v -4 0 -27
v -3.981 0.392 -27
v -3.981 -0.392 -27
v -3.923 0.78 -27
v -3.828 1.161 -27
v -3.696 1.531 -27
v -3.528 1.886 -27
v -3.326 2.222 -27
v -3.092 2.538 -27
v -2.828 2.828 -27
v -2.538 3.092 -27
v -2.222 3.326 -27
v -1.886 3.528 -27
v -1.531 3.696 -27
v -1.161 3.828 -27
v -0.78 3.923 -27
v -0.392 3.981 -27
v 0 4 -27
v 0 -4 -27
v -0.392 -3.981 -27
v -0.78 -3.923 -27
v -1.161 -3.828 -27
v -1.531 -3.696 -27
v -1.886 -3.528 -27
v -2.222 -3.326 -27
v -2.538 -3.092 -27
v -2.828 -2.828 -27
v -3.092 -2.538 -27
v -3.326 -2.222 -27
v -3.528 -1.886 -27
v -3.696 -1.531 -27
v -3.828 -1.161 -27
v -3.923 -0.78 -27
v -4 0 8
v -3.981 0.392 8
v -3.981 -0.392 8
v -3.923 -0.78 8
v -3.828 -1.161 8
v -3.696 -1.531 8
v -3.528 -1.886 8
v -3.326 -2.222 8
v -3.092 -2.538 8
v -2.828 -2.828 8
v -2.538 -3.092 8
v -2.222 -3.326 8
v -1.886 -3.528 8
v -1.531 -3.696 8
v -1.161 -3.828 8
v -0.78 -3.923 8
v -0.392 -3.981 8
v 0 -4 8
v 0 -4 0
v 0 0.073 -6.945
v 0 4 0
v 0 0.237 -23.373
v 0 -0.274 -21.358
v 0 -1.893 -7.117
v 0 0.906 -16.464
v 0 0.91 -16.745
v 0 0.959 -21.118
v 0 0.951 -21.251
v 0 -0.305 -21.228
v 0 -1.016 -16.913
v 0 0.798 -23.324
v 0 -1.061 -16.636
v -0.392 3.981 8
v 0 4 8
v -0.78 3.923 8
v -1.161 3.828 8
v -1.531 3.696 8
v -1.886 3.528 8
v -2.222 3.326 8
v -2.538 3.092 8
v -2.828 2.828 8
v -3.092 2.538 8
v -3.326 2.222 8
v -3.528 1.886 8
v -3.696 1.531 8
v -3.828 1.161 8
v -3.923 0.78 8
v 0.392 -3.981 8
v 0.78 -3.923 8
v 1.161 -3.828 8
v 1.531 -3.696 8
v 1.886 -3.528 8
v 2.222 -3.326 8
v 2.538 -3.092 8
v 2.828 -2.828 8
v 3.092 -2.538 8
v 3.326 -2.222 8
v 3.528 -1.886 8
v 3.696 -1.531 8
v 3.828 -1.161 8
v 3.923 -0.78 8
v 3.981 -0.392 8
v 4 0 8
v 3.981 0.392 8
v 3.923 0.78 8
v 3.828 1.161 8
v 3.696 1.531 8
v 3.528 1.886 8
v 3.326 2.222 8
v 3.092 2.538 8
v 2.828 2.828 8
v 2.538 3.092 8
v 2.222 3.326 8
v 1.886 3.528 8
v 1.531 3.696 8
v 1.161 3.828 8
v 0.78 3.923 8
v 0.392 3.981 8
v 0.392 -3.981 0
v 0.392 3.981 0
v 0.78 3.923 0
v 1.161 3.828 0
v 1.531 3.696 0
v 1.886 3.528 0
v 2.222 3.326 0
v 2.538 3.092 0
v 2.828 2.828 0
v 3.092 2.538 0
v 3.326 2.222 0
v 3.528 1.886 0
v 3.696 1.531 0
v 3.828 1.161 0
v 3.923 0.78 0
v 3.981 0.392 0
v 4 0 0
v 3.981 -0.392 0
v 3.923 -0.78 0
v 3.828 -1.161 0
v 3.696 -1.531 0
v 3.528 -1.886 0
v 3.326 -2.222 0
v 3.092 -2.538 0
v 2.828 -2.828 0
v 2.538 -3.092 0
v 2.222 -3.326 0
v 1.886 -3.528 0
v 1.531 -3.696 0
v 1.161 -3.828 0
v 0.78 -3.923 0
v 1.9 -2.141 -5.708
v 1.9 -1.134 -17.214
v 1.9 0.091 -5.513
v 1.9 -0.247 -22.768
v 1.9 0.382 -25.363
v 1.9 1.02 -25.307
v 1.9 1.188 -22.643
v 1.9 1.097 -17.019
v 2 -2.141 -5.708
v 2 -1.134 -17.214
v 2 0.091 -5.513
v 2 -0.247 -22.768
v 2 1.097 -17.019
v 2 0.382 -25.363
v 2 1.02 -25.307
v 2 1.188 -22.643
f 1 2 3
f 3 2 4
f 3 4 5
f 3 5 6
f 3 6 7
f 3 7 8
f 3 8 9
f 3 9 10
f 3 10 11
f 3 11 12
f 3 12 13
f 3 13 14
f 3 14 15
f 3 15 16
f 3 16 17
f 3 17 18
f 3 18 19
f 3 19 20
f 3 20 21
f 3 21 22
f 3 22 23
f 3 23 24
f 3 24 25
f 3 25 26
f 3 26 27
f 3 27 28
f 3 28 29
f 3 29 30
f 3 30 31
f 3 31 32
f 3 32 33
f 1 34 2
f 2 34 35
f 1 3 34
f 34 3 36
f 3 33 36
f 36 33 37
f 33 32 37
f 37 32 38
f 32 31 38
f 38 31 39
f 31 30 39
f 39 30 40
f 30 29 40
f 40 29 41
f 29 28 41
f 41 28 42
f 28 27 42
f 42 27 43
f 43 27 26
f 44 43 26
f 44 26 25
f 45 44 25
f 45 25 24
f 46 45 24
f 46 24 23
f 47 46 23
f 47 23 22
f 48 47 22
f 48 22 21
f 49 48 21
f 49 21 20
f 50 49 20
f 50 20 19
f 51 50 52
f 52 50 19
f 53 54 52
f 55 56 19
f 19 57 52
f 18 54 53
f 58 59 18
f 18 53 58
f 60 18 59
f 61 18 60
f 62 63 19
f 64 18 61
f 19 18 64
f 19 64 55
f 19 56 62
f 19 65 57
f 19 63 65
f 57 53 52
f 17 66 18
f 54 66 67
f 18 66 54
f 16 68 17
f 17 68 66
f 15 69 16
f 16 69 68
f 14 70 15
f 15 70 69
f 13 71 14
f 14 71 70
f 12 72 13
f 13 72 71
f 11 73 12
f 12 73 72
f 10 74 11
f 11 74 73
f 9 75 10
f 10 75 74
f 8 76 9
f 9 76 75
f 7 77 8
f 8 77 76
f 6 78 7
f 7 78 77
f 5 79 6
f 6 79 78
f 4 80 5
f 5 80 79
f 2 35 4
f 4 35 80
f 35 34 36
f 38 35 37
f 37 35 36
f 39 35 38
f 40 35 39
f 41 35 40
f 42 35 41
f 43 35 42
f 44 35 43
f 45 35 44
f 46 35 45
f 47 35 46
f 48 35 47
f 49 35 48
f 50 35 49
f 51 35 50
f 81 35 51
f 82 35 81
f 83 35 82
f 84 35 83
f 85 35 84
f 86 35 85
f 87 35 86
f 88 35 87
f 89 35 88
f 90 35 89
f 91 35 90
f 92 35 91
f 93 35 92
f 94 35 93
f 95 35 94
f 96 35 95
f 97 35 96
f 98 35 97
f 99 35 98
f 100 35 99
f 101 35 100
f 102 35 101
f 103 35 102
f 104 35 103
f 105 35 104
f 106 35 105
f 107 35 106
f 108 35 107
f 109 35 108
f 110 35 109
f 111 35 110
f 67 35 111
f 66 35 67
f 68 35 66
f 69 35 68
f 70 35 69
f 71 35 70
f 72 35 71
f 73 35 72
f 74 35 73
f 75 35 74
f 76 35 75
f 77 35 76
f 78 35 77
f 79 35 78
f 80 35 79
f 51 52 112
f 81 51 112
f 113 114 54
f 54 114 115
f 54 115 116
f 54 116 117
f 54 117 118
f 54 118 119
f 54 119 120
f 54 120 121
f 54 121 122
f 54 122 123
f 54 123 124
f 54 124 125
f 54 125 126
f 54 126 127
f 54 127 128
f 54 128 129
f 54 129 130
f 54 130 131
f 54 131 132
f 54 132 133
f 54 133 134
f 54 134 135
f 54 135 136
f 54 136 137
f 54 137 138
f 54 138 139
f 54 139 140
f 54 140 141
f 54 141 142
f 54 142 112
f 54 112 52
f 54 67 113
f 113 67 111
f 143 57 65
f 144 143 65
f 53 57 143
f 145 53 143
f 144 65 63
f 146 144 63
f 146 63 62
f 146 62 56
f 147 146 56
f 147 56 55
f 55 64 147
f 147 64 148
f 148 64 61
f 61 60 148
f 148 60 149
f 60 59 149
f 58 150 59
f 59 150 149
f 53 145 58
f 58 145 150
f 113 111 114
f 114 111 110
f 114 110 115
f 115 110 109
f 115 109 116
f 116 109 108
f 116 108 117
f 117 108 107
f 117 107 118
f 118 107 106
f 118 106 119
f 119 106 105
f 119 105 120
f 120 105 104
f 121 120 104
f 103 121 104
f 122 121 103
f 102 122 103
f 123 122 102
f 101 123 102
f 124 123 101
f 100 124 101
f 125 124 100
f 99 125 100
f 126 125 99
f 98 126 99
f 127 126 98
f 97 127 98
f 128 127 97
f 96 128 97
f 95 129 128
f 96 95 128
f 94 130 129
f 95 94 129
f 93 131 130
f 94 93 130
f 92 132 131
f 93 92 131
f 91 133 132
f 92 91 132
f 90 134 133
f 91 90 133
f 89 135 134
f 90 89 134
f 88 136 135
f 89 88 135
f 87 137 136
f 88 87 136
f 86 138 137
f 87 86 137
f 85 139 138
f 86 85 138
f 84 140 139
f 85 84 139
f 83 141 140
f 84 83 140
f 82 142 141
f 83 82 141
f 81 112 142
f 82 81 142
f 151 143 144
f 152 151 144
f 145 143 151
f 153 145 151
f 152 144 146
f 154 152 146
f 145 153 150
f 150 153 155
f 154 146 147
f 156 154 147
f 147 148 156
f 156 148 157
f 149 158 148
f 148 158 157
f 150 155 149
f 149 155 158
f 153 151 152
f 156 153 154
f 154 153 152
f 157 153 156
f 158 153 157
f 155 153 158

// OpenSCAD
$fn = 64;

union(){
difference(){
translate([0,0,-7-20])cylinder(r=8/2,h=8+7+20);
translate([0,-5,-7-20-1])cube([20,20,28]);
}
rotate([5,0,0])translate([-0.1,-2.5,-7])rotate([0,90,0])enganche();
}

module enganche(){
module traba(){
cube([10.5,2.8,0.1]);
translate([10.5,0.5,0]){
	cube([5.1,1.8,0.1]);
	translate([5.1,0.5,0]) cube([2.4,0.8,0.1]);
}
}
hull(){
translate([-1.5,-0.13,2])scale([1.1,0.8,1])traba();
scale([0.9,0.7,1])traba();
}
}
